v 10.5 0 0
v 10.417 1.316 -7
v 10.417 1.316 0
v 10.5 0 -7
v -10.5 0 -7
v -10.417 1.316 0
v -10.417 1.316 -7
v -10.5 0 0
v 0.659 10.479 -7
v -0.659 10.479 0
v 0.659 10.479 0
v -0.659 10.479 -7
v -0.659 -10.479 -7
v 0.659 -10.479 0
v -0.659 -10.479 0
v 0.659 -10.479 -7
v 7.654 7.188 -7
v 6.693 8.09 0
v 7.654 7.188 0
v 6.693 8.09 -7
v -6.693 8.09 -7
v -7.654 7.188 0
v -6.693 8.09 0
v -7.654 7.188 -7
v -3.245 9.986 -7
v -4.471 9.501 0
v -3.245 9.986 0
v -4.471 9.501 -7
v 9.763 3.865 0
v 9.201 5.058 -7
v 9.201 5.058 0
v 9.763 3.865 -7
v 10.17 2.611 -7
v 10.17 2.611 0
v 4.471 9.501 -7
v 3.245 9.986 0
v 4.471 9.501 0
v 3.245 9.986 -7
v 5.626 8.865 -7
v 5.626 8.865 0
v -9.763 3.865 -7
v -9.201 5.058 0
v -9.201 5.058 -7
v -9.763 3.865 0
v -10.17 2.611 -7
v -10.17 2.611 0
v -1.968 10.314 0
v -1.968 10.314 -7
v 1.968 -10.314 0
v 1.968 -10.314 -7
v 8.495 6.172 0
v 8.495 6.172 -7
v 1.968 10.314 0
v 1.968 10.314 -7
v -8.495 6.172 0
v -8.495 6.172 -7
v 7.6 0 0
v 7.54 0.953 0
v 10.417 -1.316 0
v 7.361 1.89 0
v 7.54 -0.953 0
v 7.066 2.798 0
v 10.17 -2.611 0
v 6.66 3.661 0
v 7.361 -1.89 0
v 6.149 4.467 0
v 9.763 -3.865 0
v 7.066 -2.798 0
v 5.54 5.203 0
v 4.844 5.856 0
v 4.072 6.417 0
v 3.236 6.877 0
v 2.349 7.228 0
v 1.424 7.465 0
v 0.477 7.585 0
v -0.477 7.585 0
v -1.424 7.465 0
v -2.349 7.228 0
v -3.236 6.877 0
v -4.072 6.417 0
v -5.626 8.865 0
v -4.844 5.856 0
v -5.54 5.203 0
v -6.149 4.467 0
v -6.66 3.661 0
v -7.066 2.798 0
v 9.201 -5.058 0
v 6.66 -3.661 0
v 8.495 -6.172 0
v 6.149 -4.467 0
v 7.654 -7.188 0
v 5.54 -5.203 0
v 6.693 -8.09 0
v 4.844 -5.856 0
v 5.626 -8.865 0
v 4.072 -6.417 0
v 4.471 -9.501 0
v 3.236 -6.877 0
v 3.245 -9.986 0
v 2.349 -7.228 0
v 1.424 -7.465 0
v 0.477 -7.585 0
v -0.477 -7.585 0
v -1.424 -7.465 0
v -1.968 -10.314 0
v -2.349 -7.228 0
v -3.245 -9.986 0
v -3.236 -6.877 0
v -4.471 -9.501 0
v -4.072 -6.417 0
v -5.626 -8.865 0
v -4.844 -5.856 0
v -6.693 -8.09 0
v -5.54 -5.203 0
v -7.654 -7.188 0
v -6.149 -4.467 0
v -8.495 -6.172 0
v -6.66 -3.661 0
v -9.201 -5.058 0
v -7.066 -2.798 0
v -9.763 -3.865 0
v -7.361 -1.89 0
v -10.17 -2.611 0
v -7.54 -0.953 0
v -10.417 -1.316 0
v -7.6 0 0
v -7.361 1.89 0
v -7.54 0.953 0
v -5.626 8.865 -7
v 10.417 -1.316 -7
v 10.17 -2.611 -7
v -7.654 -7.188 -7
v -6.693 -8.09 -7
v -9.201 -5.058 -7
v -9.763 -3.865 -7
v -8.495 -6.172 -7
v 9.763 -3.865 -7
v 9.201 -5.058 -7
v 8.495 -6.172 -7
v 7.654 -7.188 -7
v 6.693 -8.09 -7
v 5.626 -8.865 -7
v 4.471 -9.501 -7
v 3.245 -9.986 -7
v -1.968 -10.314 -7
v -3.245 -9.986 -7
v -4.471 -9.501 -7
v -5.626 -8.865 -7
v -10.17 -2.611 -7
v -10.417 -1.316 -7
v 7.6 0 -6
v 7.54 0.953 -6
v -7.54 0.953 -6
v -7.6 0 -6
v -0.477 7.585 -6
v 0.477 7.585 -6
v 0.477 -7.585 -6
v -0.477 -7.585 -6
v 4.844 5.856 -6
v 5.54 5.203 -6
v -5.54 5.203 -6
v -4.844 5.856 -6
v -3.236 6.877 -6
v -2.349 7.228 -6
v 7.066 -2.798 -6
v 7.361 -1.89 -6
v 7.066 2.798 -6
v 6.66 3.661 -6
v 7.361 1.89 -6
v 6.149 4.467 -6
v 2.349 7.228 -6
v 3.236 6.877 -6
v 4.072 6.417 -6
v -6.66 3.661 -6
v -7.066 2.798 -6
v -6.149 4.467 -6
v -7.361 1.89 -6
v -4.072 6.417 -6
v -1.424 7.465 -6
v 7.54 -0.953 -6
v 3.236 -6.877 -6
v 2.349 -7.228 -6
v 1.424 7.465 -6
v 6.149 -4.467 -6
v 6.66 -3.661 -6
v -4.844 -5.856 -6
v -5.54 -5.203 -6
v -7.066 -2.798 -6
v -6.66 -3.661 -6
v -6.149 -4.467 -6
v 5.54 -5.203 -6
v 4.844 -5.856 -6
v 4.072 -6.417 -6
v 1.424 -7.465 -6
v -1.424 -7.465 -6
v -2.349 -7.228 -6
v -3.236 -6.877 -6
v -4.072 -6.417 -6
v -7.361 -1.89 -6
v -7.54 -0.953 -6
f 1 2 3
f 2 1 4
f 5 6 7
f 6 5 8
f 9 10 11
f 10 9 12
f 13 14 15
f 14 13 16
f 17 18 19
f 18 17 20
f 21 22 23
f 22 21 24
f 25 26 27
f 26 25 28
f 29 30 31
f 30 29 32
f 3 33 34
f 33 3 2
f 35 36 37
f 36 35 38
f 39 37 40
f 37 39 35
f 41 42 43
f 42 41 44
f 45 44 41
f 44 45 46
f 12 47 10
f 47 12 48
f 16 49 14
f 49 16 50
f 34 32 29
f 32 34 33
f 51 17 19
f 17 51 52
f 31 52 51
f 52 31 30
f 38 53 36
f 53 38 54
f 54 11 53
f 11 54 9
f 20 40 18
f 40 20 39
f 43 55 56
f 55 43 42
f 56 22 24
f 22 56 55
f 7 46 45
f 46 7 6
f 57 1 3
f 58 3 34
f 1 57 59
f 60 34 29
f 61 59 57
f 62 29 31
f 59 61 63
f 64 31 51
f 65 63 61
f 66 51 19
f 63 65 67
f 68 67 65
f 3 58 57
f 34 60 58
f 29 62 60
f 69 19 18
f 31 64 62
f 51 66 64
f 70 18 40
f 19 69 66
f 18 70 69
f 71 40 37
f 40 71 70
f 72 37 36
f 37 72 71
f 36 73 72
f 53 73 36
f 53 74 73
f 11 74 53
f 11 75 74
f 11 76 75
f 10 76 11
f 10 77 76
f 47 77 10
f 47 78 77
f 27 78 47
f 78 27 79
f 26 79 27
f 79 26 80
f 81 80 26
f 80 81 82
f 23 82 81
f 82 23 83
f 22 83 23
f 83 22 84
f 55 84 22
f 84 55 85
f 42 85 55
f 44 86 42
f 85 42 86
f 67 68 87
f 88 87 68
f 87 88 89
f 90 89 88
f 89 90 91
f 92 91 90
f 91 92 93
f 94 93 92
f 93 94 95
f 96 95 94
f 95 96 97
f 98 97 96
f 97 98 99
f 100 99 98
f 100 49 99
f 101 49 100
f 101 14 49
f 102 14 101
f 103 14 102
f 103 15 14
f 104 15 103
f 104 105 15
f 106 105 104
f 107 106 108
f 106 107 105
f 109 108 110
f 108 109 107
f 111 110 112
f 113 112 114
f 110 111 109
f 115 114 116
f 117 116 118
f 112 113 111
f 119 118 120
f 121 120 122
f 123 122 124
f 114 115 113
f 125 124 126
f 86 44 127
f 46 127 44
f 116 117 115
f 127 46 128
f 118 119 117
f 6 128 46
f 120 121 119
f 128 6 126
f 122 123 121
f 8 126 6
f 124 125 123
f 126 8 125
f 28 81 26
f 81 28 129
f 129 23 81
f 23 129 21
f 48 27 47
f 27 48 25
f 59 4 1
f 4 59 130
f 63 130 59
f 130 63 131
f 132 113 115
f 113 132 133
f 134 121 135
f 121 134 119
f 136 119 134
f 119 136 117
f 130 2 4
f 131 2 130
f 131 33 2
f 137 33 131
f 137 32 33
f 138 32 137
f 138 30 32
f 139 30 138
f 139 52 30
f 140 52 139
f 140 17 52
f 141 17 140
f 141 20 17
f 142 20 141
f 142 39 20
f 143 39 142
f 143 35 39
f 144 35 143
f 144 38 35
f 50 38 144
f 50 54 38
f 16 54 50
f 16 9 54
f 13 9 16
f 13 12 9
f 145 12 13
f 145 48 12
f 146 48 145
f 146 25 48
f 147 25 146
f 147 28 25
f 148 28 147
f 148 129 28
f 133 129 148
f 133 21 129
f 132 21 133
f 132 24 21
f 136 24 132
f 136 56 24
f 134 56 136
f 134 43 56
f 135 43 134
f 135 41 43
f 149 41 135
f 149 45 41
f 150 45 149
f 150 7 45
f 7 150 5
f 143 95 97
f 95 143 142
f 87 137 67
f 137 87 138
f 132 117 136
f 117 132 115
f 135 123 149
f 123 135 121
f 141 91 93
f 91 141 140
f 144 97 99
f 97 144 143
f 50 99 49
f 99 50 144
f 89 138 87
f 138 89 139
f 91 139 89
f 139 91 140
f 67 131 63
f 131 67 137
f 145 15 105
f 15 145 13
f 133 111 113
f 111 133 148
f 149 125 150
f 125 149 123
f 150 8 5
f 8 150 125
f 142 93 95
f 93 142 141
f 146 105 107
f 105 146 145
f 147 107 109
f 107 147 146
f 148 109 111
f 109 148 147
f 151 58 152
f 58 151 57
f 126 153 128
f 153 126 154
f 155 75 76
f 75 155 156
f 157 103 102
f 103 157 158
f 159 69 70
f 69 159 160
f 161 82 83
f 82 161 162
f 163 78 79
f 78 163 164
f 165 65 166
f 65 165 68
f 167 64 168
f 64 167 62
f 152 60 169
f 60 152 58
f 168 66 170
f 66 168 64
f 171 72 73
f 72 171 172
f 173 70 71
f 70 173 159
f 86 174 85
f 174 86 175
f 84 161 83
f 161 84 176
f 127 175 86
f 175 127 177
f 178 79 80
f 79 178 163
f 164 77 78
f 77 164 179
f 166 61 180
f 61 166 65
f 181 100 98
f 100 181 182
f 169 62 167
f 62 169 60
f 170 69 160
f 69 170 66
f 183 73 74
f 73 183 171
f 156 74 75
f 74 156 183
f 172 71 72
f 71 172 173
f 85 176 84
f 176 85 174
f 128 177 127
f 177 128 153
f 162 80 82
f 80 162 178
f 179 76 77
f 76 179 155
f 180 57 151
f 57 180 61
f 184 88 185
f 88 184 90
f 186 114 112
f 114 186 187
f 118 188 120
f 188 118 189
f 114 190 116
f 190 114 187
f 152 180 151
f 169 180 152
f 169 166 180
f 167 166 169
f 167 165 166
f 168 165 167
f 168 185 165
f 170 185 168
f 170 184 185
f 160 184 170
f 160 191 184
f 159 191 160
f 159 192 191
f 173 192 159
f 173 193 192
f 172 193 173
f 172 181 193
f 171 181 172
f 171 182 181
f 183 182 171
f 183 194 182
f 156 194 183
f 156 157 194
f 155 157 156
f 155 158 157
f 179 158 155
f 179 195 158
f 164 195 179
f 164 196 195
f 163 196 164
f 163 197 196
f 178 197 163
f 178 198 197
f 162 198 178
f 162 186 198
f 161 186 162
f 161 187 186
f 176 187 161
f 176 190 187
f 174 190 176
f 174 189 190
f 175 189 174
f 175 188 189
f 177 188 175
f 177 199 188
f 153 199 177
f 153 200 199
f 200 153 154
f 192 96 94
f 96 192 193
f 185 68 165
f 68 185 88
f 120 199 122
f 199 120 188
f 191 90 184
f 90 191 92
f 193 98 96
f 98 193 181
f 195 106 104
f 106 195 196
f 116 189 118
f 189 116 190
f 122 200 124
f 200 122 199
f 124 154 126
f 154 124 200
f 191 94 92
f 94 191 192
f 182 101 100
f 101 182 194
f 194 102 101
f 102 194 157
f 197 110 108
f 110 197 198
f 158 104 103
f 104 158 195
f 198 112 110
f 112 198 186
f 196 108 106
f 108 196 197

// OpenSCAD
$fn = 50;


difference() {
	union() {
		translate(v = [0, 0, -7.0000000000]) {
			cylinder(h = 7, r = 10.5000000000);
		}
	}
	union() {
		#translate(v = [0, 0, -6.0000000000]) {
			cylinder(h = 6, r = 7.6000000000);
		}
	}
}
